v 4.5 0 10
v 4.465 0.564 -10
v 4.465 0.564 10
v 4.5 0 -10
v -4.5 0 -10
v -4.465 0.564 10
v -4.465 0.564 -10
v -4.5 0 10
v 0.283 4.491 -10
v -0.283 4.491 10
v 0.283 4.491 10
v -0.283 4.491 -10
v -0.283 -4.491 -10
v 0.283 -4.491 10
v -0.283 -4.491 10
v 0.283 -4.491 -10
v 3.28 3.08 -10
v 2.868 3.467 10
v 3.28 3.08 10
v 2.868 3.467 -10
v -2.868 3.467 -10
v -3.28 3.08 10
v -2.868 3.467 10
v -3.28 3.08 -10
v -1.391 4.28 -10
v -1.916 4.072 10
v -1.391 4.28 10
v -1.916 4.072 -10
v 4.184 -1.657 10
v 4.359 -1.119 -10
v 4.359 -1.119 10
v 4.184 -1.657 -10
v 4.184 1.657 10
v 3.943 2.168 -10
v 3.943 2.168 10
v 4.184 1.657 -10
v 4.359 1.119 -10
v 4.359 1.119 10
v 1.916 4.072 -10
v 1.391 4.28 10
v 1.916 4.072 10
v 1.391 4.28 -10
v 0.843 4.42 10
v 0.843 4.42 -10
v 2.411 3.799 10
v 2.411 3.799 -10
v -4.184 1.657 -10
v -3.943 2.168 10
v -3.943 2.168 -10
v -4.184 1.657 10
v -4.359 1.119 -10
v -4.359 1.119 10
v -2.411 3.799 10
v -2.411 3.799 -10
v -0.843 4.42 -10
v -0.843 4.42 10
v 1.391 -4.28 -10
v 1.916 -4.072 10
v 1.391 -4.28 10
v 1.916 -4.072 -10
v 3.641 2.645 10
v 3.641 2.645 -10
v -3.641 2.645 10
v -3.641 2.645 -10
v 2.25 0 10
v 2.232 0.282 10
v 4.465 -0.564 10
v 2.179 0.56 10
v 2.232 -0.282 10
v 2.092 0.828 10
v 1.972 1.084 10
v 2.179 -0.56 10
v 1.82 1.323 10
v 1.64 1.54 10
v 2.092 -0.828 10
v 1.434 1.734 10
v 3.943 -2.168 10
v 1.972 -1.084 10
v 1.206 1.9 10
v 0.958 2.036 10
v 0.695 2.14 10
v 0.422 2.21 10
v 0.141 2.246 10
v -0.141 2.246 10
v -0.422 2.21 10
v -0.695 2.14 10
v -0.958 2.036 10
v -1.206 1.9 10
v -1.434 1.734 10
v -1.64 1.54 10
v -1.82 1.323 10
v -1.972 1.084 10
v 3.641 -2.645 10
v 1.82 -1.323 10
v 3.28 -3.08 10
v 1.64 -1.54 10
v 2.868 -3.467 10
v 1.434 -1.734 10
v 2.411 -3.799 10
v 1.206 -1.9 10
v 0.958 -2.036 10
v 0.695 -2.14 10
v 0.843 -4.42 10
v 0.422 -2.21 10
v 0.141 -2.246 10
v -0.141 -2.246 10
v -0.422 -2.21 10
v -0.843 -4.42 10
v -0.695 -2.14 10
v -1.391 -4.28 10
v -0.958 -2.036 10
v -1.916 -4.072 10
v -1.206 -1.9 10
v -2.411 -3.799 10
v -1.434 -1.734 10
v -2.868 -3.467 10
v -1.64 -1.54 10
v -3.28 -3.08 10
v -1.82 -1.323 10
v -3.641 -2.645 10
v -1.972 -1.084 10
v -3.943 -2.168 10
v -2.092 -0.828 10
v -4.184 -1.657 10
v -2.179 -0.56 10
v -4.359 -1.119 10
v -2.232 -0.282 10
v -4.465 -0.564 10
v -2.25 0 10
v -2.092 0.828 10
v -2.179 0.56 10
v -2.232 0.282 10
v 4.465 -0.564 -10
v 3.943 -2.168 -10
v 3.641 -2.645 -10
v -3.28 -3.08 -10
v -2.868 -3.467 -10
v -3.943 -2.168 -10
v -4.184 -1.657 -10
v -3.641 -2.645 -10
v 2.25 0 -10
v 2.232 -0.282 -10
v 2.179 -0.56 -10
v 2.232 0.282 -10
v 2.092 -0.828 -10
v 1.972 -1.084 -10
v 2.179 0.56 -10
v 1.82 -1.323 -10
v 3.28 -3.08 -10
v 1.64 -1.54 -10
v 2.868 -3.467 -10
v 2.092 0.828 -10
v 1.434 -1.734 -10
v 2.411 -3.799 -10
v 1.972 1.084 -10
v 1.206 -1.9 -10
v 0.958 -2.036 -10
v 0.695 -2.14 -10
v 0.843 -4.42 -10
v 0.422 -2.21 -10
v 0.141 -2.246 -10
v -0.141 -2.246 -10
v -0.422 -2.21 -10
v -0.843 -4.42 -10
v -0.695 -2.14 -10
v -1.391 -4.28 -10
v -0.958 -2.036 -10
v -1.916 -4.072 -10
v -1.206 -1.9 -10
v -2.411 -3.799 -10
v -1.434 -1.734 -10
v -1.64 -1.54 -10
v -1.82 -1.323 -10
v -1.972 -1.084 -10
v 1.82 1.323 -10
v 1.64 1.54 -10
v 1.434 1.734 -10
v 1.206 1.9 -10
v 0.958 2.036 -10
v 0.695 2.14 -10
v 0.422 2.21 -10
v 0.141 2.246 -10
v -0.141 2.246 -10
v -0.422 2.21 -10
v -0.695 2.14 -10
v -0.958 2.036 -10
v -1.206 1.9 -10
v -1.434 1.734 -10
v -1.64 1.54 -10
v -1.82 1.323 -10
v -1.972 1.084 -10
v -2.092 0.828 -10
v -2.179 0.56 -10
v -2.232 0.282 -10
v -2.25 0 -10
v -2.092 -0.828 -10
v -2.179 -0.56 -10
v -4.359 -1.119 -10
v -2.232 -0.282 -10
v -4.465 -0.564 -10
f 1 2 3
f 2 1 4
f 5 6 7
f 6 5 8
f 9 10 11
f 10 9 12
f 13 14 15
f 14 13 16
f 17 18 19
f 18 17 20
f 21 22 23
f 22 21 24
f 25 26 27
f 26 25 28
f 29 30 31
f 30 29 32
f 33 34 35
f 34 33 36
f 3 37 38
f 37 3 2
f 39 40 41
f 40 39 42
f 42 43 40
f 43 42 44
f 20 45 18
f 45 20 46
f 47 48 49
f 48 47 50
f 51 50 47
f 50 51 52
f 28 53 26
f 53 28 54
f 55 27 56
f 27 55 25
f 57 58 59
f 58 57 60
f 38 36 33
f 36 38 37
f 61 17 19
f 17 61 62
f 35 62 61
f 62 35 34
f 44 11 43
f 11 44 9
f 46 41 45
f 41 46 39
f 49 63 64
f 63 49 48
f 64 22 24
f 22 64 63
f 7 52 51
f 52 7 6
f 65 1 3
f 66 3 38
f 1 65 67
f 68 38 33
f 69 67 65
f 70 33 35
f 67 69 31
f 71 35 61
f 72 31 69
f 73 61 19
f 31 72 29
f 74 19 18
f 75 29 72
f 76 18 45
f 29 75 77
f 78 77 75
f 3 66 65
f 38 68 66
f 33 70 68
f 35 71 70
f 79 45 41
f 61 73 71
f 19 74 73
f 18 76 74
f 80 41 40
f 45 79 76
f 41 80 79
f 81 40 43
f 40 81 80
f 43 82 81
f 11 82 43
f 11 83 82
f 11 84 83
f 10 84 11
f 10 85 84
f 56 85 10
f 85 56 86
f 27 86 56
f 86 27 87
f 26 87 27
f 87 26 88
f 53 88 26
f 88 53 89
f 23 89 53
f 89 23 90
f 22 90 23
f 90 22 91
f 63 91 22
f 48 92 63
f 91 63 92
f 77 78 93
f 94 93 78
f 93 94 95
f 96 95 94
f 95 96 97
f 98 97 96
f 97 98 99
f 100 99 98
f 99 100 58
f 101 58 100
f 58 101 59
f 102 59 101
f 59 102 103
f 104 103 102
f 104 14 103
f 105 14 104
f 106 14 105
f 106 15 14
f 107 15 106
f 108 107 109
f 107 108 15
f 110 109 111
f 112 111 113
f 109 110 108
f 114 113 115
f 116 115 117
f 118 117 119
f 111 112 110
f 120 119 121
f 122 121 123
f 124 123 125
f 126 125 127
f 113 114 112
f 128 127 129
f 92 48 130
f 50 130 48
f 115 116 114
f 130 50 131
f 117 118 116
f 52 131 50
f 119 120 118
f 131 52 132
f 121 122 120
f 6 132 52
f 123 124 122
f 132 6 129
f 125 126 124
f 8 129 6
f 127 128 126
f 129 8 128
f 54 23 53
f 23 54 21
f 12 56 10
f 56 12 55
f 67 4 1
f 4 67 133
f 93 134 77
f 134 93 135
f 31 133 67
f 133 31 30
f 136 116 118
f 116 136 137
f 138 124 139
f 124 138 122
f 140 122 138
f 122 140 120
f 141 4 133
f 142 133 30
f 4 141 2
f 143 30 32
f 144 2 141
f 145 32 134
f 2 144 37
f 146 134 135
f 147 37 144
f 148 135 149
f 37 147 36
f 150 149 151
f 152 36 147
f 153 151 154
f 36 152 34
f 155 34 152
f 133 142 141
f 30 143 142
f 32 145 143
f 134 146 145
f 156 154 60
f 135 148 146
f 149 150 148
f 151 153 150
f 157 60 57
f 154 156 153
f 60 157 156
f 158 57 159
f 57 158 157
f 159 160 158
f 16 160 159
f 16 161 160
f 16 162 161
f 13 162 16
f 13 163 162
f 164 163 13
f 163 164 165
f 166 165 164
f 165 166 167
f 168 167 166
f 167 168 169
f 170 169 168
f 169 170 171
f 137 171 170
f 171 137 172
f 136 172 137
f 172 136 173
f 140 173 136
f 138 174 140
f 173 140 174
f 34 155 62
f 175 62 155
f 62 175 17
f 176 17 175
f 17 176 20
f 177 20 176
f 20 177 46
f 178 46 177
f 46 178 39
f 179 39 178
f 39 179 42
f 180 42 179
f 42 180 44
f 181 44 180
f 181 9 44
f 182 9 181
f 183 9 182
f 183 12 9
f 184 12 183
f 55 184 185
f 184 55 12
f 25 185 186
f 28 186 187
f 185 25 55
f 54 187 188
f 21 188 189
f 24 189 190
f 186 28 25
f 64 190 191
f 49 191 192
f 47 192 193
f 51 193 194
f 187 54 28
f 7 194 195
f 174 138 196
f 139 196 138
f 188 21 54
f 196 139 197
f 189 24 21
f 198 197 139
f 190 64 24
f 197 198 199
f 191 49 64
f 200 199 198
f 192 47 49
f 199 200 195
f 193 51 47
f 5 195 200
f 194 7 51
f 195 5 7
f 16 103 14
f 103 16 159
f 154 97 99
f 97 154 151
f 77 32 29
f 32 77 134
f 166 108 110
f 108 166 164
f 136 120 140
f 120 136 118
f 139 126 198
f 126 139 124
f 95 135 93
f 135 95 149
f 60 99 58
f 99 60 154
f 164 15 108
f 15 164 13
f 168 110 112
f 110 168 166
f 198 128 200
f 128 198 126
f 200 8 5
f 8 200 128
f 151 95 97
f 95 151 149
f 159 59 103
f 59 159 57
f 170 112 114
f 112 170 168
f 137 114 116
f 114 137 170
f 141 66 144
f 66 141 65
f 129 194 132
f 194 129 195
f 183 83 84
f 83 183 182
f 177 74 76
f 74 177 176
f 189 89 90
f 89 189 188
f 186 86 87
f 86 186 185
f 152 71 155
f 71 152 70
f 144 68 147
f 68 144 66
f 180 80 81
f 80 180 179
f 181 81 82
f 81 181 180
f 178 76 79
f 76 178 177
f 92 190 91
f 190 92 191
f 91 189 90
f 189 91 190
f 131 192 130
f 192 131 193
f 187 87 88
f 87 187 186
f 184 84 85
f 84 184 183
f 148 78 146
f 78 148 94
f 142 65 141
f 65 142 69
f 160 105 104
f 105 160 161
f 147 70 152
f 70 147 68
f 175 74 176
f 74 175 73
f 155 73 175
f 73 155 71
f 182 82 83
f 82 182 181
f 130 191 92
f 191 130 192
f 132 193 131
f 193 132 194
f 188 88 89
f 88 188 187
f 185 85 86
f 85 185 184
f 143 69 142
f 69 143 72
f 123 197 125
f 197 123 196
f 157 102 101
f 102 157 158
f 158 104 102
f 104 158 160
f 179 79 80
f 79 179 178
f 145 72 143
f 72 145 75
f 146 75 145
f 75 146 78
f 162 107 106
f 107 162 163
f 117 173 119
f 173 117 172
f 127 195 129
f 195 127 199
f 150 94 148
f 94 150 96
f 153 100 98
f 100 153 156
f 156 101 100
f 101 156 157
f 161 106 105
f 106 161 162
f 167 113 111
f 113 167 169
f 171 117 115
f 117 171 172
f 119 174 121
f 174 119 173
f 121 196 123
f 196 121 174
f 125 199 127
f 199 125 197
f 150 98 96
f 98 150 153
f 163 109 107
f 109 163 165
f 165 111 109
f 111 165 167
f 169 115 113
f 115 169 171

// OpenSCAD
$fn = 50;


difference() {
	union() {
		translate(v = [0, 0, -10.0000000000]) {
			cylinder(h = 20, r = 4.5000000000);
		}
	}
	union() {
		translate(v = [0, 0, -100.0000000000]) {
			cylinder(h = 200, r = 2.2500000000);
		}
	}
}
